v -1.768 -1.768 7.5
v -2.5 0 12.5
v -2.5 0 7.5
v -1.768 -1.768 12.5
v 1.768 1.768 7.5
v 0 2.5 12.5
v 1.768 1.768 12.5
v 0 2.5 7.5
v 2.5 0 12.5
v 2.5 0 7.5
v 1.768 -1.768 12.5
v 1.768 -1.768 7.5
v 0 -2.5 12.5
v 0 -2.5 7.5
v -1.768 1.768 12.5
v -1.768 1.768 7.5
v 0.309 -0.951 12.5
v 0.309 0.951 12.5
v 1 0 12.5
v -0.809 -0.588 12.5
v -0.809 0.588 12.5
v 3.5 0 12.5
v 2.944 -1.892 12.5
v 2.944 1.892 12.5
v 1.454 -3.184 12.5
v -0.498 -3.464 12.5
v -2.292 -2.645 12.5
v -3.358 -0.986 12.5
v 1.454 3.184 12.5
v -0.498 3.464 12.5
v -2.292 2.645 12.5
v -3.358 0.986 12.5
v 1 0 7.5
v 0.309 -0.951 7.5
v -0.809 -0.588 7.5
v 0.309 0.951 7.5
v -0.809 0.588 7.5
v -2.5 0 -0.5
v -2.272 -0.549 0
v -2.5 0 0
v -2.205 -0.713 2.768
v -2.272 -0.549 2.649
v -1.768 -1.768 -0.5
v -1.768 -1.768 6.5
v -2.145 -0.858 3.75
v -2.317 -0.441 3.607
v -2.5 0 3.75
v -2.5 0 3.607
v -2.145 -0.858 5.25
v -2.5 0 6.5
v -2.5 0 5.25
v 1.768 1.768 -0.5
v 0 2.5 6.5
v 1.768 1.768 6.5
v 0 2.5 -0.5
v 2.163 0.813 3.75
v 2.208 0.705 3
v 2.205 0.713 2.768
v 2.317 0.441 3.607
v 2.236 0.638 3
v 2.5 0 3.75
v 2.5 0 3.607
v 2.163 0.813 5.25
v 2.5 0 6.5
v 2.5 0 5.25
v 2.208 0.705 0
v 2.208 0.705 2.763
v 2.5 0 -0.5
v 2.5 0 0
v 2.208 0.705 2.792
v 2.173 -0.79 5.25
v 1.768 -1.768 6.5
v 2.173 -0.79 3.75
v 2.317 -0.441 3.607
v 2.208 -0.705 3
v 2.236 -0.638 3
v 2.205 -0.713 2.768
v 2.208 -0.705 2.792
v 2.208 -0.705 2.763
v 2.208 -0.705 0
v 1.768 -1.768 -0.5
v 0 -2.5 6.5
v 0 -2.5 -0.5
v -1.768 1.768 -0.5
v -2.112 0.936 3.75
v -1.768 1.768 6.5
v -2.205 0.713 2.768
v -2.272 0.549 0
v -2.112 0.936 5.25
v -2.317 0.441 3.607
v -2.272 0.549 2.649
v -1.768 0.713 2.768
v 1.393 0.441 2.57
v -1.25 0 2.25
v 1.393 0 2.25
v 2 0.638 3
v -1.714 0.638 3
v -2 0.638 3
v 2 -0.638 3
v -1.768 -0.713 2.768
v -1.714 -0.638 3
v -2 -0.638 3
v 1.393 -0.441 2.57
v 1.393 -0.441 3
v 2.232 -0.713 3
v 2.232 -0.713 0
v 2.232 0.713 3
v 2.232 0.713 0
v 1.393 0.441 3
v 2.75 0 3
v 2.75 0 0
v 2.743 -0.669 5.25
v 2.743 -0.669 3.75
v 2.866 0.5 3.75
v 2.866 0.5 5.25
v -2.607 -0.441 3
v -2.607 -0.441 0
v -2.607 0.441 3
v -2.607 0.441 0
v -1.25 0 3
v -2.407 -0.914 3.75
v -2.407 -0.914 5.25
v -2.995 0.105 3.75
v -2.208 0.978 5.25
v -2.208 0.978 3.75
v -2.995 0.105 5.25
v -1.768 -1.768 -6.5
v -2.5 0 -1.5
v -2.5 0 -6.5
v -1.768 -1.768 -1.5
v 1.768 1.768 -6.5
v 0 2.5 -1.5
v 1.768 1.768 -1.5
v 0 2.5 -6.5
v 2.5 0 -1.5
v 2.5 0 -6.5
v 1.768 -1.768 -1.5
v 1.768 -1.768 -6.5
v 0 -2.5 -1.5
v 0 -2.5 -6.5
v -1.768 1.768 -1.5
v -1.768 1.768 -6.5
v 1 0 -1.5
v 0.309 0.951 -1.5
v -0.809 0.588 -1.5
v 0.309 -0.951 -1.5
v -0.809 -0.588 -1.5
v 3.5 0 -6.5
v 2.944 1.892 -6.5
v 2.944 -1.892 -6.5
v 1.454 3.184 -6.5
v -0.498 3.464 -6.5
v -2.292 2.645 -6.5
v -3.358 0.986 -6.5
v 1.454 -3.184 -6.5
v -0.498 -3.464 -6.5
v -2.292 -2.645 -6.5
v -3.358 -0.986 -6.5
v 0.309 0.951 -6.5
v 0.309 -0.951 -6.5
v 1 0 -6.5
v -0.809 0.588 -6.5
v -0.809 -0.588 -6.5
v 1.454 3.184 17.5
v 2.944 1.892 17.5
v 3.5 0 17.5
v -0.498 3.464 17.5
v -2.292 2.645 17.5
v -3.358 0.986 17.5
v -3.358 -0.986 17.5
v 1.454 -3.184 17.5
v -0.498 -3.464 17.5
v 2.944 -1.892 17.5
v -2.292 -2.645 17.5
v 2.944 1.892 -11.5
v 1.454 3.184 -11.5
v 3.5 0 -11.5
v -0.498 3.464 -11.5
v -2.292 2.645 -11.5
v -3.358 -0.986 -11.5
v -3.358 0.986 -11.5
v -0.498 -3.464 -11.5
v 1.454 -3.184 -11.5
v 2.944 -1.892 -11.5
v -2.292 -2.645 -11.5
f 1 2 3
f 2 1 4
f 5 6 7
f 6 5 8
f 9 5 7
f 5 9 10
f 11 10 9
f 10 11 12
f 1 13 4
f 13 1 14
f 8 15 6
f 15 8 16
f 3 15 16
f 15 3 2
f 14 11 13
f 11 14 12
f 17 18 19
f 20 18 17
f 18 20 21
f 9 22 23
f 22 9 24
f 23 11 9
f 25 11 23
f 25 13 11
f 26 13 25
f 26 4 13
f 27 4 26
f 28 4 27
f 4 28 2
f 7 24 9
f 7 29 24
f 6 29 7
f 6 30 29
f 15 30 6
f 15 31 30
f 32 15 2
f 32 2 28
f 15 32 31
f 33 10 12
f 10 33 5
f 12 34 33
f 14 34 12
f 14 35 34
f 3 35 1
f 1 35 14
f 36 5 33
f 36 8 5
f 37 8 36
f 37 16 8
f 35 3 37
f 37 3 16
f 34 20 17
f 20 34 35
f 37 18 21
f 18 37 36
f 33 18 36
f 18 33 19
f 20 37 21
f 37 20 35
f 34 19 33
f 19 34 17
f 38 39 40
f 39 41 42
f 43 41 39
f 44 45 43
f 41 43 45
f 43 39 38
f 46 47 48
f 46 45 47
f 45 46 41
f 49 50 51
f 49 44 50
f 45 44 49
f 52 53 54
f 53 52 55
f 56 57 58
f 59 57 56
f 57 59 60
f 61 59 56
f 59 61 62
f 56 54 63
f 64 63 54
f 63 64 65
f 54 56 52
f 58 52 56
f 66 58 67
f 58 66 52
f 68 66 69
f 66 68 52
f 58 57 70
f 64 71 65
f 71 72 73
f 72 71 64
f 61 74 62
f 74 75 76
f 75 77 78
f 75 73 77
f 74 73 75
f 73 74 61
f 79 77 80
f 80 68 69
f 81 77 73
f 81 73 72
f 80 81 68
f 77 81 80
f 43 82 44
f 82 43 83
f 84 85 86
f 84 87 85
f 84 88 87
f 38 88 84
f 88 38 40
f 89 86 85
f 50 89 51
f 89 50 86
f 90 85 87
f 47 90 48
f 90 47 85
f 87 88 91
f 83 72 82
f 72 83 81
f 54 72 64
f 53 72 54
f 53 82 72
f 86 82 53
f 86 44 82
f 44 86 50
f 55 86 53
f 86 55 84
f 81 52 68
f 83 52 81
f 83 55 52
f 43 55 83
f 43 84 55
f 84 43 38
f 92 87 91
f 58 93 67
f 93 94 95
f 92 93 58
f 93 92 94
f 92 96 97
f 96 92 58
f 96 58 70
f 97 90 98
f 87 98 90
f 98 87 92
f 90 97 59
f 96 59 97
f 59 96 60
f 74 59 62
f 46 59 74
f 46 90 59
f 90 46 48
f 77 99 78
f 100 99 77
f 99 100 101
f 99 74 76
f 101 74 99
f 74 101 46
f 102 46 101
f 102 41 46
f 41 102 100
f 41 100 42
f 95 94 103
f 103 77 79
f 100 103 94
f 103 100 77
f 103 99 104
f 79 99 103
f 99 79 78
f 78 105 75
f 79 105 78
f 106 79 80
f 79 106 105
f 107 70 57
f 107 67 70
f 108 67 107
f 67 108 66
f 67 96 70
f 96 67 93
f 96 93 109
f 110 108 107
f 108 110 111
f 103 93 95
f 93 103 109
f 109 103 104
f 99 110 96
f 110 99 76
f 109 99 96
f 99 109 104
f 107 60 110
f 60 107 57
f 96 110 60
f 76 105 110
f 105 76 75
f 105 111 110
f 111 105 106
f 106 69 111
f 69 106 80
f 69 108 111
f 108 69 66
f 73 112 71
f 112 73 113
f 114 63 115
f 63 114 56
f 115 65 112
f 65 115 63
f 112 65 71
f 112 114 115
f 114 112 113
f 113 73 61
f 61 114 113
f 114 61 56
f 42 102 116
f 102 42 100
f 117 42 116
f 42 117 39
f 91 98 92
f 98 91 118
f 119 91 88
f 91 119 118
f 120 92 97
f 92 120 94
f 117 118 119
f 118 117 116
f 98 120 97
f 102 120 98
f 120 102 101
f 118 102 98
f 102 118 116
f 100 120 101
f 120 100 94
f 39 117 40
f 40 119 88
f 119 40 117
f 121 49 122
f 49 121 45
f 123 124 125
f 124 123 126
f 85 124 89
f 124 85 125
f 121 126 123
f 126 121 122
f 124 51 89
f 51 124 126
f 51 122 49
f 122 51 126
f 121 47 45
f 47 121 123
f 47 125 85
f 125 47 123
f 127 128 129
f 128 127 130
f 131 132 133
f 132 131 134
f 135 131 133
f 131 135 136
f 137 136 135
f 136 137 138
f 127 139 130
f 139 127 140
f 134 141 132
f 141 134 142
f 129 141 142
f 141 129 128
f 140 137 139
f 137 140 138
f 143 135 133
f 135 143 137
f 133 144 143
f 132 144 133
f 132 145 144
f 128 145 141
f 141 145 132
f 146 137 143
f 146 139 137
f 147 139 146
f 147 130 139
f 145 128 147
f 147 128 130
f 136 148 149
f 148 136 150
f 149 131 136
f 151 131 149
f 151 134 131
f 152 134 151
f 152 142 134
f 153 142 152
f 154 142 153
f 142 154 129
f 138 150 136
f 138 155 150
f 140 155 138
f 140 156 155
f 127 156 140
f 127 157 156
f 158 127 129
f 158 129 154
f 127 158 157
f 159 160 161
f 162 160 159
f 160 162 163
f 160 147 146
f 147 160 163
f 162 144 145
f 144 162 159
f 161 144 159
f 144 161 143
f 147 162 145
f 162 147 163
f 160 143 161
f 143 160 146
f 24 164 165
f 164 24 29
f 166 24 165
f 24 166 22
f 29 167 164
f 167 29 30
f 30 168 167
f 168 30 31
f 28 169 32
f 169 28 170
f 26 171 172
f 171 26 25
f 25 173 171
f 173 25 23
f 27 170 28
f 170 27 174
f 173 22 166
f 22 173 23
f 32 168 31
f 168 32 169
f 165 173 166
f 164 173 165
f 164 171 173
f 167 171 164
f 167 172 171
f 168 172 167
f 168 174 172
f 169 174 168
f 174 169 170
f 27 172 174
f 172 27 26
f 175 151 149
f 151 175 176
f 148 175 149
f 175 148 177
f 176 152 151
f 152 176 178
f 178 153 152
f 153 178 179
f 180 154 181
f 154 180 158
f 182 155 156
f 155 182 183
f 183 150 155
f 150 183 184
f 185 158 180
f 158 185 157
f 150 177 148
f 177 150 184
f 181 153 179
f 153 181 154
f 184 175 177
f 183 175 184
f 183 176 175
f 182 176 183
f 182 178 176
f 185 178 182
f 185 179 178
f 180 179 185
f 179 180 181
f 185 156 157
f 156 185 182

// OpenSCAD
// Define the components
module cylindrical_base() {
    translate([0, 0, 0])
    cylinder(h=5, r1=3.5, r2=3.5, center=true);
}

module small_hollow_cylinder() {
    difference() {
        translate([0, 0, 0])
        cylinder(h=5, r1=2.5, r2=2.5, center=true);
        translate([0, 0, 0])
        cylinder(h=6, r1=1, r2=1, center=true);
    }
}

module bolt_like_fastener() {
    union() {
        translate([0, 0, -1.5])
        cylinder(h=3, r1=0.75, r2=0.75, center=true);
        translate([0, 0, 1.5])
        rotate([0,0,30])
        cylinder(h=1.5, r1=1, r2=1, center=true);
    }
}

module connector_cylinder_with_bolt_holes() {
    difference() {
        cylinder(h=7, r1=2.5, r2=2.5, center=true);
        translate([0, 0, 0])
        rotate([0, 90, 0])
        cylinder(h=7, r1=0.75, r2=0.75, center=true);
    }
}

// Build the model assembly
module flexible_coupling() {
    translate([0, 0, 15]) cylindrical_base();
    translate([0, 0, 10]) small_hollow_cylinder();
    translate([0, 0, 3]) connector_cylinder_with_bolt_holes();
    translate([2, 0, 3]) bolt_like_fastener();
    translate([-2, 0, 3]) bolt_like_fastener();
    translate([0, 0, -4]) small_hollow_cylinder();
    translate([0, 0, -9]) cylindrical_base();
}

// Render the assembly
flexible_coupling();
